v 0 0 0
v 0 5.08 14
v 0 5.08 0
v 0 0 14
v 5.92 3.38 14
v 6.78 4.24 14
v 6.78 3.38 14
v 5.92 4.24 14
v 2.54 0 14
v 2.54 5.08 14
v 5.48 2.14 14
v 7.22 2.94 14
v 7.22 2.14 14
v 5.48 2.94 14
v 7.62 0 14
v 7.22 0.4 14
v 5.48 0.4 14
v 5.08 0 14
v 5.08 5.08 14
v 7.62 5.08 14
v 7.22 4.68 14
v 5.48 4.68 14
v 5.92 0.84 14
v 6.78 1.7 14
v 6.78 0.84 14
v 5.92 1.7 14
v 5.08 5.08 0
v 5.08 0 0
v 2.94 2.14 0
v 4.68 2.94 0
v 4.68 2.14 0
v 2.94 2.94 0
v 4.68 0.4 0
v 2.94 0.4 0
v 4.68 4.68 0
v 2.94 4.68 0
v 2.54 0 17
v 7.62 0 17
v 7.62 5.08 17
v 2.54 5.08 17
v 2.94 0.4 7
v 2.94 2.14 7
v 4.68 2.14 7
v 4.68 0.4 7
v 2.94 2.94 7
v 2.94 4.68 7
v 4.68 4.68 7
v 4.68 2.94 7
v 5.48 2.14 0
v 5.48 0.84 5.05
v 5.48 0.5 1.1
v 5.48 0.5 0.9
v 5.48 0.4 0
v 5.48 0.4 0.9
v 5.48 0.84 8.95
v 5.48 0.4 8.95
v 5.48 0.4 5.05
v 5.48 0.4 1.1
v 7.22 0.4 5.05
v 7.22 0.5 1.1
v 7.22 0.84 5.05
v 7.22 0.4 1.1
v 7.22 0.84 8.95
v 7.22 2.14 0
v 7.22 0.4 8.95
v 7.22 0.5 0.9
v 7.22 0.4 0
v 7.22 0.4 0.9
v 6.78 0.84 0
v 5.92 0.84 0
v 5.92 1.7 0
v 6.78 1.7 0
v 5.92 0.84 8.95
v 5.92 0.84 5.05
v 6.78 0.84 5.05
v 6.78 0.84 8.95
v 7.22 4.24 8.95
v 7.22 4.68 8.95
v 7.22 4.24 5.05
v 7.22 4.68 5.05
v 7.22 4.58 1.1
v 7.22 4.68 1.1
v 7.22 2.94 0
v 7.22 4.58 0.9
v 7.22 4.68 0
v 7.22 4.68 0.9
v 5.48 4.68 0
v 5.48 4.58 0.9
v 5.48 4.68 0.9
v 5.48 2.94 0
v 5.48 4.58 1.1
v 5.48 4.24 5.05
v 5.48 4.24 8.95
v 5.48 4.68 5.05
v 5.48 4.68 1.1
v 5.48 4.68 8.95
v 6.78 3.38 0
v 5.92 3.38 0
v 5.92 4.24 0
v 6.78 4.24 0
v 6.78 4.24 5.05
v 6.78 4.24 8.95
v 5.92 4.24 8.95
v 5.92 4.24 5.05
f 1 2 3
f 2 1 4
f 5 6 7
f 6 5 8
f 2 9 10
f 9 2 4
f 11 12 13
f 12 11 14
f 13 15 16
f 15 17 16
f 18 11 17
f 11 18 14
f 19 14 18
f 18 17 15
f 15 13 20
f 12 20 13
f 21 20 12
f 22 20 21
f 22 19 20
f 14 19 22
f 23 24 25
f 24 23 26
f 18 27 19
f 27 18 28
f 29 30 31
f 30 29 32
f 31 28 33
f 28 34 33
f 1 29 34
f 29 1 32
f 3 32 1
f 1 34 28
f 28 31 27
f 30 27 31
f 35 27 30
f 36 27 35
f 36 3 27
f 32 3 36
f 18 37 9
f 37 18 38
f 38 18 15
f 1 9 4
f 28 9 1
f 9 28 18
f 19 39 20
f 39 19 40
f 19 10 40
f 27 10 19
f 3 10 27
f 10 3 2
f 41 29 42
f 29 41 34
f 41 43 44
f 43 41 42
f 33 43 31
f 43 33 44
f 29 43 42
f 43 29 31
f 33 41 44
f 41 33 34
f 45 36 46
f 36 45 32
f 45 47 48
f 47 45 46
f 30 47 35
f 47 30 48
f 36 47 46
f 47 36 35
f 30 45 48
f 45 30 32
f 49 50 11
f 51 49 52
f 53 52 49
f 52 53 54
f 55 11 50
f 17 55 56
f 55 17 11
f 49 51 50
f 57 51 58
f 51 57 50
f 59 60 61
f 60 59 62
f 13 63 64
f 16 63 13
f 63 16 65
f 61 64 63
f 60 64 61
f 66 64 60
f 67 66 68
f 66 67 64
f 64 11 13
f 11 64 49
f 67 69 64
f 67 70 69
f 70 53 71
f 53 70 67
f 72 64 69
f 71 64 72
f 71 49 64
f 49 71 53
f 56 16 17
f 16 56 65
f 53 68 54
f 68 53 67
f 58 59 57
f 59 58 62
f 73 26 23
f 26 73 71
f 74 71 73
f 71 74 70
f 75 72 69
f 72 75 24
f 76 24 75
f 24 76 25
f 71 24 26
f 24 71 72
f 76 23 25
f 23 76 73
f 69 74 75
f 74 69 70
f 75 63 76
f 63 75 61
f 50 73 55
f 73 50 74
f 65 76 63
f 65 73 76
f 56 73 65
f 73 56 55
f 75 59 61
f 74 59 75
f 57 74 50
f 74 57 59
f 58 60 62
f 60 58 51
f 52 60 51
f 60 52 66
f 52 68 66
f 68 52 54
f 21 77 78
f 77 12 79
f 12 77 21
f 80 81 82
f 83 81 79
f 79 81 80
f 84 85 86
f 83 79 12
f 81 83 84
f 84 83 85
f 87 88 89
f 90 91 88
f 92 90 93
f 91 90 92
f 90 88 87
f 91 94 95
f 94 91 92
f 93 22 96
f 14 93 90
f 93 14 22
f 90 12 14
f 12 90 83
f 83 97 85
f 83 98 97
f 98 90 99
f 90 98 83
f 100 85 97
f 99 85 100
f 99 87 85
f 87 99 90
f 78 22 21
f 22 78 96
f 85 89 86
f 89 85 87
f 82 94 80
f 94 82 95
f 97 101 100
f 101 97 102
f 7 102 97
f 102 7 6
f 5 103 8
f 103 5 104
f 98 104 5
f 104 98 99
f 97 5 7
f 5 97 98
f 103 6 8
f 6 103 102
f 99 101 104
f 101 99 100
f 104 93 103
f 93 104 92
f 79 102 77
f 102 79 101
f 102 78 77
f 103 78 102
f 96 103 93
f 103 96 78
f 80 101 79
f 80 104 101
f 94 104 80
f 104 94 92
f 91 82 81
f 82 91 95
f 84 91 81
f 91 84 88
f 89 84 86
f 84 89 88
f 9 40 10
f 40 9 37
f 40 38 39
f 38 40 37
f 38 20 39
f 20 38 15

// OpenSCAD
// Customize the invocations (which follow
// the modules declarations) at the bottom of the file.

// To get these to print the fine features created
// by the "text" command, I set "Outer wall" to
// 0.22mm.

minh = 1;	// Minimum height
inch = 25.4;
$fn=50;

// BUGBUG: Does width/length need fudge for clearance?
awidth = 0.66+.20;	// Aperture width
iwidth = 1.76-.02;	// Box inside width
owidth = 2.54;	// Box outside width
oheight = 14.00; // Box overall height
theight = 8.30;	// Retention tab height
bheight = 3.90; // Pin guide height
gheight = oheight -  theight - bheight; // Height of gap

rows = 2;
cols = 44;

width = 81;
length = 44.6;
//height = 2;
height = 3*inch;
oww = 2.5; // ww we must fit inside
ww = oww + 1; // Our wall width

// x, y are center!
module pin(x, y, a) {
    translate([x, y, oheight/2]) rotate(a) {
        difference() {
            cube([iwidth, iwidth, oheight], true);
            cube([awidth, awidth, oheight], true);
            translate([-iwidth/2, -iwidth/2, -bheight/2])
                cube([iwidth, (iwidth-awidth)/2,
                        bheight]);
            translate([0, -iwidth/2, 1-oheight/2])
                cube([iwidth, 0.2, 0.2], true);
        }
    }
}

// Draw the main box.
{
    // BUGBUG: Need holes for pins in this shape.
    difference() {
        cube([2*owidth, 2*owidth, oheight]);
        translate([1.5*owidth, 0.5*owidth, 0])
            cube([iwidth, iwidth, oheight], true);
        translate([1.5*owidth, 1.5*owidth, 0])
            cube([iwidth, iwidth, oheight], true);
    }
    pin(2.5*owidth, 0.5*owidth, 0);
    pin(2.5*owidth, 1.5*owidth, 180);
    translate([owidth, 0, oheight])
        cube([2*owidth, 2*owidth, 3]);
}
